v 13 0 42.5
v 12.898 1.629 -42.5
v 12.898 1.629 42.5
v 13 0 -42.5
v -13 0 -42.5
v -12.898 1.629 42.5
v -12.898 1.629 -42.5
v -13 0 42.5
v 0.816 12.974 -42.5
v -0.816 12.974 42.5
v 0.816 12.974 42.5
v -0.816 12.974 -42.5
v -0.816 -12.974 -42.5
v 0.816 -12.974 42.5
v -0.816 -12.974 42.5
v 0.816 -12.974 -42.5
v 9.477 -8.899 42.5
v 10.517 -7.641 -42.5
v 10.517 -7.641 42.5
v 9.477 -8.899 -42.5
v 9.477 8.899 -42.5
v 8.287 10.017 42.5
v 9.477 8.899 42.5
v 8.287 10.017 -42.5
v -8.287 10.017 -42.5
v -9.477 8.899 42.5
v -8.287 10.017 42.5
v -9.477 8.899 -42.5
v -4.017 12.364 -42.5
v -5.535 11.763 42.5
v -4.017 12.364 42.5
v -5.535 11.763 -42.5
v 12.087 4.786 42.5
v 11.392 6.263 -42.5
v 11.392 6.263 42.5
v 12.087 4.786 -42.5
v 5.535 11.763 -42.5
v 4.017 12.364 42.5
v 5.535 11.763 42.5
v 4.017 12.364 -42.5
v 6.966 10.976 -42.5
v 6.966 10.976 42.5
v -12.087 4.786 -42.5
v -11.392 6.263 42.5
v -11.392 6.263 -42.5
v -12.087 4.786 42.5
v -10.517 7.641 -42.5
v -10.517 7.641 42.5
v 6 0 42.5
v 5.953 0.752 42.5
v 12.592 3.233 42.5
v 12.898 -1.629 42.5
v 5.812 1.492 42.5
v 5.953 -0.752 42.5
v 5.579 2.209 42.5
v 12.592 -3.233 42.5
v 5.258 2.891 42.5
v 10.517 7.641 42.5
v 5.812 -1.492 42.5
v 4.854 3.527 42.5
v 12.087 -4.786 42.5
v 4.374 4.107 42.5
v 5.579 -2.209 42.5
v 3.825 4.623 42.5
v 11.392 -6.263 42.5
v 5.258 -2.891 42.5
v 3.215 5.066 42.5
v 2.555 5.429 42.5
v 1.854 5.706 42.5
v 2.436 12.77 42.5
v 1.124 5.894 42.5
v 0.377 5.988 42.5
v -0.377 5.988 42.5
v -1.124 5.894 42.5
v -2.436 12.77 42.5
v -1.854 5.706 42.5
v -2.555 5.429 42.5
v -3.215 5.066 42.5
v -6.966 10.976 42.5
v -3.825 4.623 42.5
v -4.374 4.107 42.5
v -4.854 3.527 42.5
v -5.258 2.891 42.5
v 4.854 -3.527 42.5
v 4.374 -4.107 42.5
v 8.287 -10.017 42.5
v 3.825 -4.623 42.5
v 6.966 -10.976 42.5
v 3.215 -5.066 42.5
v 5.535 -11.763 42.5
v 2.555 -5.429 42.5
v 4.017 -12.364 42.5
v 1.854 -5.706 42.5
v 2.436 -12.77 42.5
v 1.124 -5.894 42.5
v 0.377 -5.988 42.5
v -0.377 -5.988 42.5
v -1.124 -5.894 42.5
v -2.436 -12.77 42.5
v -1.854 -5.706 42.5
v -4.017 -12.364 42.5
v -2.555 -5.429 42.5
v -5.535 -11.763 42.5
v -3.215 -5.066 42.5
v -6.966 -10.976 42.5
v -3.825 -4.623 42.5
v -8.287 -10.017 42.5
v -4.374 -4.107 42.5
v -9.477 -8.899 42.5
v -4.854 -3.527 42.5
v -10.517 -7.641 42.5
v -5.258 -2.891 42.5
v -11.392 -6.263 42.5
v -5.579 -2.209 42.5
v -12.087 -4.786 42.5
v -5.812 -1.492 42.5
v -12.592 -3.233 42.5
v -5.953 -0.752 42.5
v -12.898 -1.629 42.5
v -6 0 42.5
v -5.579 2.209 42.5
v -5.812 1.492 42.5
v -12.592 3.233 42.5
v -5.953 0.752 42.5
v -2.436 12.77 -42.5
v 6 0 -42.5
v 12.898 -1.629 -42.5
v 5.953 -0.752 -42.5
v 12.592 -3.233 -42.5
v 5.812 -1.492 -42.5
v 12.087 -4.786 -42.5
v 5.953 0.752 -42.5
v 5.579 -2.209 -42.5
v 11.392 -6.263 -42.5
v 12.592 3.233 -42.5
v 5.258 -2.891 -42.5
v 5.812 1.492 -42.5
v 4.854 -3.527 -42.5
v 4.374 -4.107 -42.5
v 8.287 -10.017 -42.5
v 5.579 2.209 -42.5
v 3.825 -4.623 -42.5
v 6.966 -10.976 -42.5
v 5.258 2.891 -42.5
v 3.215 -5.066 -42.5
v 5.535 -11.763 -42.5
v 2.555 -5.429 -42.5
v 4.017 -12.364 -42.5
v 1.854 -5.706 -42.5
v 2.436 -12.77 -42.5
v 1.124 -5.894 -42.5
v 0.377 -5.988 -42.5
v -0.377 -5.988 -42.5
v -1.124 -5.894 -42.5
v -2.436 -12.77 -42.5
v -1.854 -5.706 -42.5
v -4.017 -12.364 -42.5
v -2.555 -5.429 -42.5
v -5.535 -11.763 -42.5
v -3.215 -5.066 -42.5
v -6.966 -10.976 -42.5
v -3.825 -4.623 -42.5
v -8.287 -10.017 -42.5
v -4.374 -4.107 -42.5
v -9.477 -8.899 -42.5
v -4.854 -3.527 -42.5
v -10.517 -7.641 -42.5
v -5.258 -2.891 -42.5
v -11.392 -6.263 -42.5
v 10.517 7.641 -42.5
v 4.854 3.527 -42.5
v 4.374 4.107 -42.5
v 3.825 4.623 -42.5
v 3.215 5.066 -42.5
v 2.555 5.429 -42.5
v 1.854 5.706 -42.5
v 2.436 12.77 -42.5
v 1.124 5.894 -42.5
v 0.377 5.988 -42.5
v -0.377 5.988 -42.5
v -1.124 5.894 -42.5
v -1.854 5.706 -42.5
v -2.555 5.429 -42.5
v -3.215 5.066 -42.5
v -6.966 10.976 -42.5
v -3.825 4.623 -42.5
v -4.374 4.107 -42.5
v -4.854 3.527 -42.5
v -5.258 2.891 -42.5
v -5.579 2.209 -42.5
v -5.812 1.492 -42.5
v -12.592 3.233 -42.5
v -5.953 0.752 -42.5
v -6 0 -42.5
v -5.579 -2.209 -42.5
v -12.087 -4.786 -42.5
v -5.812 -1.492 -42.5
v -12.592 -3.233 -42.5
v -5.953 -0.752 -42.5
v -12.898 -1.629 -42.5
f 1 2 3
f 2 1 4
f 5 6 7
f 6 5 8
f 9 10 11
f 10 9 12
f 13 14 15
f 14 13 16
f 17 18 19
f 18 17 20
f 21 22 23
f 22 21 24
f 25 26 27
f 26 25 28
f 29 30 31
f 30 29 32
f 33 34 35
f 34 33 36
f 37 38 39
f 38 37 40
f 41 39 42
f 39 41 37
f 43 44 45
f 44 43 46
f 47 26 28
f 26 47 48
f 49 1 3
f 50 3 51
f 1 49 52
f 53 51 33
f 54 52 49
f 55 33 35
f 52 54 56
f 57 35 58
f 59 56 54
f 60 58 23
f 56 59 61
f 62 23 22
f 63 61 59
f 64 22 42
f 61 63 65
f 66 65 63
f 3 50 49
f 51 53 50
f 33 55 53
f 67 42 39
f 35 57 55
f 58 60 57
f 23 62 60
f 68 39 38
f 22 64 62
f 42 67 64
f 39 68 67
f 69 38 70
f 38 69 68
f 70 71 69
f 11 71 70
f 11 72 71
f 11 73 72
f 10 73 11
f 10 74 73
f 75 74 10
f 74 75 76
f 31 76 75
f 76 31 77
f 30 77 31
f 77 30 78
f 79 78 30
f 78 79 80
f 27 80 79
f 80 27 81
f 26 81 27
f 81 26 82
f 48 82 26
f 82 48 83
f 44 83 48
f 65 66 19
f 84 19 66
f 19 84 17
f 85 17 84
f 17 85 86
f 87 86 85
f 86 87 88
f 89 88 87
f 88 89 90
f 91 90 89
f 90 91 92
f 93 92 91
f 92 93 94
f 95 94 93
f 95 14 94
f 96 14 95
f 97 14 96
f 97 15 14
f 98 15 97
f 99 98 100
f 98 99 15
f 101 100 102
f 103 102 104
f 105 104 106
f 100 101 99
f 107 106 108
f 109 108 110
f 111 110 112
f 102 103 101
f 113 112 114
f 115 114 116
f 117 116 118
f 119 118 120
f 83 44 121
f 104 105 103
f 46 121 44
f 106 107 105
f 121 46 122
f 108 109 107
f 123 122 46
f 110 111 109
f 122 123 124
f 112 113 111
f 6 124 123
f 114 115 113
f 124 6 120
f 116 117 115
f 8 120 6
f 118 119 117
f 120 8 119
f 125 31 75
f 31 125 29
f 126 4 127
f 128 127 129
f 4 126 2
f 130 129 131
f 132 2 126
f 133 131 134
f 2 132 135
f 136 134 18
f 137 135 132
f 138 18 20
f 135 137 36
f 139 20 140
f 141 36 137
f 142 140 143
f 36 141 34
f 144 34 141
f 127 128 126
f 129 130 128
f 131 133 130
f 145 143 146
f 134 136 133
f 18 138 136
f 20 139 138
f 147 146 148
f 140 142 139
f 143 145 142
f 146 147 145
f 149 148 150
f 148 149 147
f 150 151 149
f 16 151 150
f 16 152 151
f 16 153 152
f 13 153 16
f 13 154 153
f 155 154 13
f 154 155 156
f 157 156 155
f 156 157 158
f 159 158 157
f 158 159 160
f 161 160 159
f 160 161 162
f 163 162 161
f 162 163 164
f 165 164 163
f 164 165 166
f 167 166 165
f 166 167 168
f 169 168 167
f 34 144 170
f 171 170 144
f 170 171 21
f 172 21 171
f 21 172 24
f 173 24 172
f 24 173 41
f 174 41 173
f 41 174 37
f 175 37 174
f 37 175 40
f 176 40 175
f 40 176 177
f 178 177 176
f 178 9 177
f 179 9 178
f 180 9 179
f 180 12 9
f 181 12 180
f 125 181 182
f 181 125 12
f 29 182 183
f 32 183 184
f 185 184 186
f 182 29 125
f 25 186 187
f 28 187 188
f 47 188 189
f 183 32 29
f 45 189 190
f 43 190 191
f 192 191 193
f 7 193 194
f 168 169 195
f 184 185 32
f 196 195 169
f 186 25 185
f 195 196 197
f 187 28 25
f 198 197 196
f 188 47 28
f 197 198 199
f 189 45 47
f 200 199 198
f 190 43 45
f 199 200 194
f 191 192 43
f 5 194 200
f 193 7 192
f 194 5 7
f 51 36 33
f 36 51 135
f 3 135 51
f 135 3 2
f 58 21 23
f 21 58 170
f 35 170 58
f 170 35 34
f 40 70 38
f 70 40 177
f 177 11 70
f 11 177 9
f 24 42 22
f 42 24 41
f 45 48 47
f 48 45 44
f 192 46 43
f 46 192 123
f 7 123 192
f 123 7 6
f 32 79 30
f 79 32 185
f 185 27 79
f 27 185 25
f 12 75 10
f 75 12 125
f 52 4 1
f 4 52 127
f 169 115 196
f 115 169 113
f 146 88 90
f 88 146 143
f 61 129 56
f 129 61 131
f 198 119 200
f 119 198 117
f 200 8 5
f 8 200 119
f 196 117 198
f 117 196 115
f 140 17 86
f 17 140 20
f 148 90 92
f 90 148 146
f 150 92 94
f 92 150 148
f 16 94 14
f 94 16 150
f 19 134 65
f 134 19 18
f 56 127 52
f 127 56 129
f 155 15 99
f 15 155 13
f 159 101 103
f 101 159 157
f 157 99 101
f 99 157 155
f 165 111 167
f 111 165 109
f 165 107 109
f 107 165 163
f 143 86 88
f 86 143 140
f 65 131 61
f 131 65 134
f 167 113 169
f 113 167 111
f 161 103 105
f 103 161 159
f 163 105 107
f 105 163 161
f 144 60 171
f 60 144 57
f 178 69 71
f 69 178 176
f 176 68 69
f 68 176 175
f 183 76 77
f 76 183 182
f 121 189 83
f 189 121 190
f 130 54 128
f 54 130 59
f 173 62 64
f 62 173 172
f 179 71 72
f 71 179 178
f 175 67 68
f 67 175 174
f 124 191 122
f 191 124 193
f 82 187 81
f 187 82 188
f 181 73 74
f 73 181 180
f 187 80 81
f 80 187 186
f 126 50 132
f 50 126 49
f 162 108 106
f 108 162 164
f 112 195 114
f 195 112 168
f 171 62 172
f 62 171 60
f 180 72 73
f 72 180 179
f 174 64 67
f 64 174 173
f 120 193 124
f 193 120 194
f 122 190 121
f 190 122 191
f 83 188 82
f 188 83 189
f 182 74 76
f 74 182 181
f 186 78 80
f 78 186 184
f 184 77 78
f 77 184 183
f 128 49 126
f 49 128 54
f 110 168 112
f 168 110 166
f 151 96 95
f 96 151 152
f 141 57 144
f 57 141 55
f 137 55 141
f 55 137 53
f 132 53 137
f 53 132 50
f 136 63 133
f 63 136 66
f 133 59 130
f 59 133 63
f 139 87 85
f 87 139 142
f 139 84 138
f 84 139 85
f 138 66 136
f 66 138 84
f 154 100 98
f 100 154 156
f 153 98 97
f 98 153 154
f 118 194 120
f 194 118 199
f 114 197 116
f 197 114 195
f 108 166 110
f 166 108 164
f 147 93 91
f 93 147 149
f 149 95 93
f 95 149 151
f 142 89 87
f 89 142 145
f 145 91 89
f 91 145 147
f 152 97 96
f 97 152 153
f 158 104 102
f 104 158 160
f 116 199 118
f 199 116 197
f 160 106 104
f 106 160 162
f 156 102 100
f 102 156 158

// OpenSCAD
$fn = 50;


difference() {
	union() {
		translate(v = [0, 0, -42.5000000000]) {
			cylinder(h = 85, r = 13.0000000000);
		}
	}
	union() {
		translate(v = [0, 0, -100.0000000000]) {
			cylinder(h = 200, r = 6);
		}
	}
}
